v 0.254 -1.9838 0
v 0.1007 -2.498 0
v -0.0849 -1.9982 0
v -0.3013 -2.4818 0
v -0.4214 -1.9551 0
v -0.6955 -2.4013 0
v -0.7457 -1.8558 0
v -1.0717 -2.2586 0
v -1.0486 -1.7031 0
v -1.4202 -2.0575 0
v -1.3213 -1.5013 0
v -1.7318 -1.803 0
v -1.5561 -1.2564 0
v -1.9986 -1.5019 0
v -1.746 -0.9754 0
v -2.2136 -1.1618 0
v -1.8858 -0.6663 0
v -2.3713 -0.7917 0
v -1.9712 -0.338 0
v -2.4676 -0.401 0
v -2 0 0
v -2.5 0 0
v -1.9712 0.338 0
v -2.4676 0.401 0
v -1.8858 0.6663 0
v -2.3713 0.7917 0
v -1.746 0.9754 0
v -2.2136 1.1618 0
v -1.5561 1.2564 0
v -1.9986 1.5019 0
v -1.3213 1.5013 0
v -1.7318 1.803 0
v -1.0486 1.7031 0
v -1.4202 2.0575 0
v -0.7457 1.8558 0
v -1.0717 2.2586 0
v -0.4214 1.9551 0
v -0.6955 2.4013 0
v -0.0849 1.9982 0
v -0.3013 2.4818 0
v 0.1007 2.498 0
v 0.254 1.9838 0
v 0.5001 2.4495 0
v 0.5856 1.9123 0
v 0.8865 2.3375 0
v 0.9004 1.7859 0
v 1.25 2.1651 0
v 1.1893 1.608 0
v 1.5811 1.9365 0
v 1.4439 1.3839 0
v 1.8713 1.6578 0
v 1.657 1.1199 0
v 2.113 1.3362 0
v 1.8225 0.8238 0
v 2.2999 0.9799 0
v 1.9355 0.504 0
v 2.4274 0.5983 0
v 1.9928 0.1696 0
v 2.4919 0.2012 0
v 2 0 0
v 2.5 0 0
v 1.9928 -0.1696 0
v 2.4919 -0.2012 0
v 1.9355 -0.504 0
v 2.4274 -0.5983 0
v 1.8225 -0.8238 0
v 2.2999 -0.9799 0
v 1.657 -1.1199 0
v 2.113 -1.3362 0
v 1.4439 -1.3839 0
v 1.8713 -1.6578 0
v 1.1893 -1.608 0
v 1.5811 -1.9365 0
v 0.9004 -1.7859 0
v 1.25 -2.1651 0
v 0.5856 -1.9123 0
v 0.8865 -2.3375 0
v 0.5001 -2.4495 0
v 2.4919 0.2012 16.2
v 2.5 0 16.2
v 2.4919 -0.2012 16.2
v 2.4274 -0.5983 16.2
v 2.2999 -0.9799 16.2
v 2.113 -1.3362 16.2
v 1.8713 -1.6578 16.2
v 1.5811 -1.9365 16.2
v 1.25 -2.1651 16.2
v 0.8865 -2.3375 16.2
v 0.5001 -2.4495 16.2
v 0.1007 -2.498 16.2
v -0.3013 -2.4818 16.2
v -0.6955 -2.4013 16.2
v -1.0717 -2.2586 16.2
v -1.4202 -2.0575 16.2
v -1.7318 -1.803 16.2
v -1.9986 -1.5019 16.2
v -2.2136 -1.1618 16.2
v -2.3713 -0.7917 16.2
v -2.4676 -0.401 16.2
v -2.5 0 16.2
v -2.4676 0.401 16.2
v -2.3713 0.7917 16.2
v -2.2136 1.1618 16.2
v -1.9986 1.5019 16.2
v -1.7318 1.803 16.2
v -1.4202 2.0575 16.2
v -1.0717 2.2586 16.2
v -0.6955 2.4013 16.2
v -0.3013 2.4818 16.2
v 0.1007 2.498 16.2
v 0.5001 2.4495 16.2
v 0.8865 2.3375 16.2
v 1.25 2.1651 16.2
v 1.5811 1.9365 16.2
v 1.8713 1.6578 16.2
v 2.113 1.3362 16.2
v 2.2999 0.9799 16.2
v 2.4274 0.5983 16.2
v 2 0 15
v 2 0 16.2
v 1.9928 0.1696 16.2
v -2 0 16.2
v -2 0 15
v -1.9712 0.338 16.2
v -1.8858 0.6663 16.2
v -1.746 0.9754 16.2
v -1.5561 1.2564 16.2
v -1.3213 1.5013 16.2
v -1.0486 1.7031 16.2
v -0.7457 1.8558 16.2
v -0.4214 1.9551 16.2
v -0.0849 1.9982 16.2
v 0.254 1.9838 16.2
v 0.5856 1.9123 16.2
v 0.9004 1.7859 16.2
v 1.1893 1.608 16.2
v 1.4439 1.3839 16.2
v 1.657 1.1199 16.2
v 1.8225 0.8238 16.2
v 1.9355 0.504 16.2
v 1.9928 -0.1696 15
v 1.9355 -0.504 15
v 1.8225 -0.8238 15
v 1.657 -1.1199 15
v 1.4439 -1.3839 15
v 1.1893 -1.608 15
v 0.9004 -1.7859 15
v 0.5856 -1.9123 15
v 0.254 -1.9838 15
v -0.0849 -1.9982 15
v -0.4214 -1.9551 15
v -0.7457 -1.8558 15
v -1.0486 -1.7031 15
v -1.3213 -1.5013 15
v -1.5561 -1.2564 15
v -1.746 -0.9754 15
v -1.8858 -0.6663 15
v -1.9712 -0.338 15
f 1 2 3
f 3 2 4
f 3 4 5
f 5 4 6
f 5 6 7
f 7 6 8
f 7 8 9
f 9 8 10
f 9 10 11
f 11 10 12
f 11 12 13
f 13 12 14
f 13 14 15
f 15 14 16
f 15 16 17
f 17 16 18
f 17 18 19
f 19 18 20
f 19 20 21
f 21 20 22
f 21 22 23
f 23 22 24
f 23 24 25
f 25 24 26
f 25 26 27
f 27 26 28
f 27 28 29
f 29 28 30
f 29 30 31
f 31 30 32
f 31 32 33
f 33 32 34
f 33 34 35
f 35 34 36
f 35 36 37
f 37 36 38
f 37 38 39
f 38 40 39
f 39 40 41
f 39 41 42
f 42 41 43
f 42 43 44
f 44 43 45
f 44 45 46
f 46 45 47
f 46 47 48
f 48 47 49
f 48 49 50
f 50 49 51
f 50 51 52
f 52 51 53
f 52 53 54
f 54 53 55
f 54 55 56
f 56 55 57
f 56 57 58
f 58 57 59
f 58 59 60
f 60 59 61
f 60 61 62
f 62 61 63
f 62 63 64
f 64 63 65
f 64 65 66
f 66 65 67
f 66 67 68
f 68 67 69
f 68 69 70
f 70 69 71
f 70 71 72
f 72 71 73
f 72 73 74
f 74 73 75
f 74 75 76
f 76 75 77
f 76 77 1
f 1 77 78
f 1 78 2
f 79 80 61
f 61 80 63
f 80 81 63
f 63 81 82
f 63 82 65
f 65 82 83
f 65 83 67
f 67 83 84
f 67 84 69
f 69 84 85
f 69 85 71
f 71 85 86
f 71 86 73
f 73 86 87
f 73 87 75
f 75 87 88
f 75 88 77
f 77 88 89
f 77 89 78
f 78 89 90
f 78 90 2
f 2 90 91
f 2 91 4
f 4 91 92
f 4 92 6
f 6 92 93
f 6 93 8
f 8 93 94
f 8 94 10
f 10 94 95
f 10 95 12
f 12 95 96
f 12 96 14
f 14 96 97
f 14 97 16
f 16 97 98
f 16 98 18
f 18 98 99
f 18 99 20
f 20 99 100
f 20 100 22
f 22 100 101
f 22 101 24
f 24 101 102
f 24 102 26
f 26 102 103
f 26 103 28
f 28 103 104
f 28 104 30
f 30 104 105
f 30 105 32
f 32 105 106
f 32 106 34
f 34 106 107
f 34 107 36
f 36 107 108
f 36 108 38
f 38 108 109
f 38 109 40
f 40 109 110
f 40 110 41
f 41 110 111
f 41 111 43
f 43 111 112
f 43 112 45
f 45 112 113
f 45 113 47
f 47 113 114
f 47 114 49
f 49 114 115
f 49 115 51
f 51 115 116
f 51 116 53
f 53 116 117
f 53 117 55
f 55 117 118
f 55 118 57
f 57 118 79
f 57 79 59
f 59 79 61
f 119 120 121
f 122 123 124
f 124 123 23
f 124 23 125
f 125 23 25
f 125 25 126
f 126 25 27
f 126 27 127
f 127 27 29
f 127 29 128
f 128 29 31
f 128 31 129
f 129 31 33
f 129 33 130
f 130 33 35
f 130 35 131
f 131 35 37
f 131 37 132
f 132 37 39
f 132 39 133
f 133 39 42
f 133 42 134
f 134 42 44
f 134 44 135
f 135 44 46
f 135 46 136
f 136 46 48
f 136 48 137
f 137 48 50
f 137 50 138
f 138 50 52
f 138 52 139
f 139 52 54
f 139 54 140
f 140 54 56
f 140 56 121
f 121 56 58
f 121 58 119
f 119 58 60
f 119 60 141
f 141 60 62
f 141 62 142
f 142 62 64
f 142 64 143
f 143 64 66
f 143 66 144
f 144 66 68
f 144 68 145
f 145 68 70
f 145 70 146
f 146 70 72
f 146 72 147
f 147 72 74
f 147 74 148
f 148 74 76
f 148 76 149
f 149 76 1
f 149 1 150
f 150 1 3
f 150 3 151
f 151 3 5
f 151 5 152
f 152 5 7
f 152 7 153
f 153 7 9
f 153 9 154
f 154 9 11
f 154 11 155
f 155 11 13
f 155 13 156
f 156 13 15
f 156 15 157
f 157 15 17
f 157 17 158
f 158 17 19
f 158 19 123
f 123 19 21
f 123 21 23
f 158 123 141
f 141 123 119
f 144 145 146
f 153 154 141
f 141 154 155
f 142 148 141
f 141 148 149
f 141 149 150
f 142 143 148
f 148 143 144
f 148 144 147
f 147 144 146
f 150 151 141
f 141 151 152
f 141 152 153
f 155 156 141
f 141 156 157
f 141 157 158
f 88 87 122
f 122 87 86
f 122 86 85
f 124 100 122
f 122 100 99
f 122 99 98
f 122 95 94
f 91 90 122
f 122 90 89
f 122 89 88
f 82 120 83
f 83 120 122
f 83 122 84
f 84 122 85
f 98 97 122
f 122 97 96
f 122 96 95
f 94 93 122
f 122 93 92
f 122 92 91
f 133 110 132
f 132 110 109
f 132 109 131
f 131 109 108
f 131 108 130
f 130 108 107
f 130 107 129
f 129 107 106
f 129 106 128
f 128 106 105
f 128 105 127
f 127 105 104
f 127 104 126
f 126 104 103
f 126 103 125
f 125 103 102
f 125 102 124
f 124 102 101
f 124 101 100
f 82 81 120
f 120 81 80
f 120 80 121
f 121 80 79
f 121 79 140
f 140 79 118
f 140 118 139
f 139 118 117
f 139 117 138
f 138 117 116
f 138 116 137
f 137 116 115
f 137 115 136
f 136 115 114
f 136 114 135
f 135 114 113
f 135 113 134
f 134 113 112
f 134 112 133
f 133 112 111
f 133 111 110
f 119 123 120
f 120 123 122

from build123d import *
from build123d.topology import SkipClean

# Parameters (mm, degrees)
CROQUIS1_R              = 2.5
CROQUIS1_R_2            = 2
SALIENTE_EXTRUIR1_DEPTH = 15
CROQUIS2_R              = 2.5
SALIENTE_EXTRUIR2_DEPTH = 1.2
CORTAR_EXTRUIR1_START   = -1.2
CORTAR_EXTRUIR1_DEPTH   = 1.2


with BuildPart() as part:
    # Croquis1 → Saliente-Extruir1 (new body)
    with BuildSketch(Plane.XY):
        Circle(CROQUIS1_R)
        Circle(CROQUIS1_R_2, mode=Mode.SUBTRACT)
    extrude(amount=SALIENTE_EXTRUIR1_DEPTH)

    # Croquis2 → Saliente-Extruir2 (add)
    with BuildSketch(Plane.XY.offset(15)):
        Circle(CROQUIS2_R)
    extrude(amount=SALIENTE_EXTRUIR2_DEPTH)

    # Croquis3 → Cortar-Extruir1 (cut)
    with SkipClean():  # the faces are left unmerged after this step: merging them gives an invalid solid
        with BuildSketch(Plane.XY.offset(16.2).offset(CORTAR_EXTRUIR1_START)):
            with BuildLine():
                Line((2, 0), (-2, 0))
                ThreePointArc((-2, 0), (0, 2), (2, 0))
            make_face()
        extrude(amount=CORTAR_EXTRUIR1_DEPTH, mode=Mode.SUBTRACT)


solid = part.part
